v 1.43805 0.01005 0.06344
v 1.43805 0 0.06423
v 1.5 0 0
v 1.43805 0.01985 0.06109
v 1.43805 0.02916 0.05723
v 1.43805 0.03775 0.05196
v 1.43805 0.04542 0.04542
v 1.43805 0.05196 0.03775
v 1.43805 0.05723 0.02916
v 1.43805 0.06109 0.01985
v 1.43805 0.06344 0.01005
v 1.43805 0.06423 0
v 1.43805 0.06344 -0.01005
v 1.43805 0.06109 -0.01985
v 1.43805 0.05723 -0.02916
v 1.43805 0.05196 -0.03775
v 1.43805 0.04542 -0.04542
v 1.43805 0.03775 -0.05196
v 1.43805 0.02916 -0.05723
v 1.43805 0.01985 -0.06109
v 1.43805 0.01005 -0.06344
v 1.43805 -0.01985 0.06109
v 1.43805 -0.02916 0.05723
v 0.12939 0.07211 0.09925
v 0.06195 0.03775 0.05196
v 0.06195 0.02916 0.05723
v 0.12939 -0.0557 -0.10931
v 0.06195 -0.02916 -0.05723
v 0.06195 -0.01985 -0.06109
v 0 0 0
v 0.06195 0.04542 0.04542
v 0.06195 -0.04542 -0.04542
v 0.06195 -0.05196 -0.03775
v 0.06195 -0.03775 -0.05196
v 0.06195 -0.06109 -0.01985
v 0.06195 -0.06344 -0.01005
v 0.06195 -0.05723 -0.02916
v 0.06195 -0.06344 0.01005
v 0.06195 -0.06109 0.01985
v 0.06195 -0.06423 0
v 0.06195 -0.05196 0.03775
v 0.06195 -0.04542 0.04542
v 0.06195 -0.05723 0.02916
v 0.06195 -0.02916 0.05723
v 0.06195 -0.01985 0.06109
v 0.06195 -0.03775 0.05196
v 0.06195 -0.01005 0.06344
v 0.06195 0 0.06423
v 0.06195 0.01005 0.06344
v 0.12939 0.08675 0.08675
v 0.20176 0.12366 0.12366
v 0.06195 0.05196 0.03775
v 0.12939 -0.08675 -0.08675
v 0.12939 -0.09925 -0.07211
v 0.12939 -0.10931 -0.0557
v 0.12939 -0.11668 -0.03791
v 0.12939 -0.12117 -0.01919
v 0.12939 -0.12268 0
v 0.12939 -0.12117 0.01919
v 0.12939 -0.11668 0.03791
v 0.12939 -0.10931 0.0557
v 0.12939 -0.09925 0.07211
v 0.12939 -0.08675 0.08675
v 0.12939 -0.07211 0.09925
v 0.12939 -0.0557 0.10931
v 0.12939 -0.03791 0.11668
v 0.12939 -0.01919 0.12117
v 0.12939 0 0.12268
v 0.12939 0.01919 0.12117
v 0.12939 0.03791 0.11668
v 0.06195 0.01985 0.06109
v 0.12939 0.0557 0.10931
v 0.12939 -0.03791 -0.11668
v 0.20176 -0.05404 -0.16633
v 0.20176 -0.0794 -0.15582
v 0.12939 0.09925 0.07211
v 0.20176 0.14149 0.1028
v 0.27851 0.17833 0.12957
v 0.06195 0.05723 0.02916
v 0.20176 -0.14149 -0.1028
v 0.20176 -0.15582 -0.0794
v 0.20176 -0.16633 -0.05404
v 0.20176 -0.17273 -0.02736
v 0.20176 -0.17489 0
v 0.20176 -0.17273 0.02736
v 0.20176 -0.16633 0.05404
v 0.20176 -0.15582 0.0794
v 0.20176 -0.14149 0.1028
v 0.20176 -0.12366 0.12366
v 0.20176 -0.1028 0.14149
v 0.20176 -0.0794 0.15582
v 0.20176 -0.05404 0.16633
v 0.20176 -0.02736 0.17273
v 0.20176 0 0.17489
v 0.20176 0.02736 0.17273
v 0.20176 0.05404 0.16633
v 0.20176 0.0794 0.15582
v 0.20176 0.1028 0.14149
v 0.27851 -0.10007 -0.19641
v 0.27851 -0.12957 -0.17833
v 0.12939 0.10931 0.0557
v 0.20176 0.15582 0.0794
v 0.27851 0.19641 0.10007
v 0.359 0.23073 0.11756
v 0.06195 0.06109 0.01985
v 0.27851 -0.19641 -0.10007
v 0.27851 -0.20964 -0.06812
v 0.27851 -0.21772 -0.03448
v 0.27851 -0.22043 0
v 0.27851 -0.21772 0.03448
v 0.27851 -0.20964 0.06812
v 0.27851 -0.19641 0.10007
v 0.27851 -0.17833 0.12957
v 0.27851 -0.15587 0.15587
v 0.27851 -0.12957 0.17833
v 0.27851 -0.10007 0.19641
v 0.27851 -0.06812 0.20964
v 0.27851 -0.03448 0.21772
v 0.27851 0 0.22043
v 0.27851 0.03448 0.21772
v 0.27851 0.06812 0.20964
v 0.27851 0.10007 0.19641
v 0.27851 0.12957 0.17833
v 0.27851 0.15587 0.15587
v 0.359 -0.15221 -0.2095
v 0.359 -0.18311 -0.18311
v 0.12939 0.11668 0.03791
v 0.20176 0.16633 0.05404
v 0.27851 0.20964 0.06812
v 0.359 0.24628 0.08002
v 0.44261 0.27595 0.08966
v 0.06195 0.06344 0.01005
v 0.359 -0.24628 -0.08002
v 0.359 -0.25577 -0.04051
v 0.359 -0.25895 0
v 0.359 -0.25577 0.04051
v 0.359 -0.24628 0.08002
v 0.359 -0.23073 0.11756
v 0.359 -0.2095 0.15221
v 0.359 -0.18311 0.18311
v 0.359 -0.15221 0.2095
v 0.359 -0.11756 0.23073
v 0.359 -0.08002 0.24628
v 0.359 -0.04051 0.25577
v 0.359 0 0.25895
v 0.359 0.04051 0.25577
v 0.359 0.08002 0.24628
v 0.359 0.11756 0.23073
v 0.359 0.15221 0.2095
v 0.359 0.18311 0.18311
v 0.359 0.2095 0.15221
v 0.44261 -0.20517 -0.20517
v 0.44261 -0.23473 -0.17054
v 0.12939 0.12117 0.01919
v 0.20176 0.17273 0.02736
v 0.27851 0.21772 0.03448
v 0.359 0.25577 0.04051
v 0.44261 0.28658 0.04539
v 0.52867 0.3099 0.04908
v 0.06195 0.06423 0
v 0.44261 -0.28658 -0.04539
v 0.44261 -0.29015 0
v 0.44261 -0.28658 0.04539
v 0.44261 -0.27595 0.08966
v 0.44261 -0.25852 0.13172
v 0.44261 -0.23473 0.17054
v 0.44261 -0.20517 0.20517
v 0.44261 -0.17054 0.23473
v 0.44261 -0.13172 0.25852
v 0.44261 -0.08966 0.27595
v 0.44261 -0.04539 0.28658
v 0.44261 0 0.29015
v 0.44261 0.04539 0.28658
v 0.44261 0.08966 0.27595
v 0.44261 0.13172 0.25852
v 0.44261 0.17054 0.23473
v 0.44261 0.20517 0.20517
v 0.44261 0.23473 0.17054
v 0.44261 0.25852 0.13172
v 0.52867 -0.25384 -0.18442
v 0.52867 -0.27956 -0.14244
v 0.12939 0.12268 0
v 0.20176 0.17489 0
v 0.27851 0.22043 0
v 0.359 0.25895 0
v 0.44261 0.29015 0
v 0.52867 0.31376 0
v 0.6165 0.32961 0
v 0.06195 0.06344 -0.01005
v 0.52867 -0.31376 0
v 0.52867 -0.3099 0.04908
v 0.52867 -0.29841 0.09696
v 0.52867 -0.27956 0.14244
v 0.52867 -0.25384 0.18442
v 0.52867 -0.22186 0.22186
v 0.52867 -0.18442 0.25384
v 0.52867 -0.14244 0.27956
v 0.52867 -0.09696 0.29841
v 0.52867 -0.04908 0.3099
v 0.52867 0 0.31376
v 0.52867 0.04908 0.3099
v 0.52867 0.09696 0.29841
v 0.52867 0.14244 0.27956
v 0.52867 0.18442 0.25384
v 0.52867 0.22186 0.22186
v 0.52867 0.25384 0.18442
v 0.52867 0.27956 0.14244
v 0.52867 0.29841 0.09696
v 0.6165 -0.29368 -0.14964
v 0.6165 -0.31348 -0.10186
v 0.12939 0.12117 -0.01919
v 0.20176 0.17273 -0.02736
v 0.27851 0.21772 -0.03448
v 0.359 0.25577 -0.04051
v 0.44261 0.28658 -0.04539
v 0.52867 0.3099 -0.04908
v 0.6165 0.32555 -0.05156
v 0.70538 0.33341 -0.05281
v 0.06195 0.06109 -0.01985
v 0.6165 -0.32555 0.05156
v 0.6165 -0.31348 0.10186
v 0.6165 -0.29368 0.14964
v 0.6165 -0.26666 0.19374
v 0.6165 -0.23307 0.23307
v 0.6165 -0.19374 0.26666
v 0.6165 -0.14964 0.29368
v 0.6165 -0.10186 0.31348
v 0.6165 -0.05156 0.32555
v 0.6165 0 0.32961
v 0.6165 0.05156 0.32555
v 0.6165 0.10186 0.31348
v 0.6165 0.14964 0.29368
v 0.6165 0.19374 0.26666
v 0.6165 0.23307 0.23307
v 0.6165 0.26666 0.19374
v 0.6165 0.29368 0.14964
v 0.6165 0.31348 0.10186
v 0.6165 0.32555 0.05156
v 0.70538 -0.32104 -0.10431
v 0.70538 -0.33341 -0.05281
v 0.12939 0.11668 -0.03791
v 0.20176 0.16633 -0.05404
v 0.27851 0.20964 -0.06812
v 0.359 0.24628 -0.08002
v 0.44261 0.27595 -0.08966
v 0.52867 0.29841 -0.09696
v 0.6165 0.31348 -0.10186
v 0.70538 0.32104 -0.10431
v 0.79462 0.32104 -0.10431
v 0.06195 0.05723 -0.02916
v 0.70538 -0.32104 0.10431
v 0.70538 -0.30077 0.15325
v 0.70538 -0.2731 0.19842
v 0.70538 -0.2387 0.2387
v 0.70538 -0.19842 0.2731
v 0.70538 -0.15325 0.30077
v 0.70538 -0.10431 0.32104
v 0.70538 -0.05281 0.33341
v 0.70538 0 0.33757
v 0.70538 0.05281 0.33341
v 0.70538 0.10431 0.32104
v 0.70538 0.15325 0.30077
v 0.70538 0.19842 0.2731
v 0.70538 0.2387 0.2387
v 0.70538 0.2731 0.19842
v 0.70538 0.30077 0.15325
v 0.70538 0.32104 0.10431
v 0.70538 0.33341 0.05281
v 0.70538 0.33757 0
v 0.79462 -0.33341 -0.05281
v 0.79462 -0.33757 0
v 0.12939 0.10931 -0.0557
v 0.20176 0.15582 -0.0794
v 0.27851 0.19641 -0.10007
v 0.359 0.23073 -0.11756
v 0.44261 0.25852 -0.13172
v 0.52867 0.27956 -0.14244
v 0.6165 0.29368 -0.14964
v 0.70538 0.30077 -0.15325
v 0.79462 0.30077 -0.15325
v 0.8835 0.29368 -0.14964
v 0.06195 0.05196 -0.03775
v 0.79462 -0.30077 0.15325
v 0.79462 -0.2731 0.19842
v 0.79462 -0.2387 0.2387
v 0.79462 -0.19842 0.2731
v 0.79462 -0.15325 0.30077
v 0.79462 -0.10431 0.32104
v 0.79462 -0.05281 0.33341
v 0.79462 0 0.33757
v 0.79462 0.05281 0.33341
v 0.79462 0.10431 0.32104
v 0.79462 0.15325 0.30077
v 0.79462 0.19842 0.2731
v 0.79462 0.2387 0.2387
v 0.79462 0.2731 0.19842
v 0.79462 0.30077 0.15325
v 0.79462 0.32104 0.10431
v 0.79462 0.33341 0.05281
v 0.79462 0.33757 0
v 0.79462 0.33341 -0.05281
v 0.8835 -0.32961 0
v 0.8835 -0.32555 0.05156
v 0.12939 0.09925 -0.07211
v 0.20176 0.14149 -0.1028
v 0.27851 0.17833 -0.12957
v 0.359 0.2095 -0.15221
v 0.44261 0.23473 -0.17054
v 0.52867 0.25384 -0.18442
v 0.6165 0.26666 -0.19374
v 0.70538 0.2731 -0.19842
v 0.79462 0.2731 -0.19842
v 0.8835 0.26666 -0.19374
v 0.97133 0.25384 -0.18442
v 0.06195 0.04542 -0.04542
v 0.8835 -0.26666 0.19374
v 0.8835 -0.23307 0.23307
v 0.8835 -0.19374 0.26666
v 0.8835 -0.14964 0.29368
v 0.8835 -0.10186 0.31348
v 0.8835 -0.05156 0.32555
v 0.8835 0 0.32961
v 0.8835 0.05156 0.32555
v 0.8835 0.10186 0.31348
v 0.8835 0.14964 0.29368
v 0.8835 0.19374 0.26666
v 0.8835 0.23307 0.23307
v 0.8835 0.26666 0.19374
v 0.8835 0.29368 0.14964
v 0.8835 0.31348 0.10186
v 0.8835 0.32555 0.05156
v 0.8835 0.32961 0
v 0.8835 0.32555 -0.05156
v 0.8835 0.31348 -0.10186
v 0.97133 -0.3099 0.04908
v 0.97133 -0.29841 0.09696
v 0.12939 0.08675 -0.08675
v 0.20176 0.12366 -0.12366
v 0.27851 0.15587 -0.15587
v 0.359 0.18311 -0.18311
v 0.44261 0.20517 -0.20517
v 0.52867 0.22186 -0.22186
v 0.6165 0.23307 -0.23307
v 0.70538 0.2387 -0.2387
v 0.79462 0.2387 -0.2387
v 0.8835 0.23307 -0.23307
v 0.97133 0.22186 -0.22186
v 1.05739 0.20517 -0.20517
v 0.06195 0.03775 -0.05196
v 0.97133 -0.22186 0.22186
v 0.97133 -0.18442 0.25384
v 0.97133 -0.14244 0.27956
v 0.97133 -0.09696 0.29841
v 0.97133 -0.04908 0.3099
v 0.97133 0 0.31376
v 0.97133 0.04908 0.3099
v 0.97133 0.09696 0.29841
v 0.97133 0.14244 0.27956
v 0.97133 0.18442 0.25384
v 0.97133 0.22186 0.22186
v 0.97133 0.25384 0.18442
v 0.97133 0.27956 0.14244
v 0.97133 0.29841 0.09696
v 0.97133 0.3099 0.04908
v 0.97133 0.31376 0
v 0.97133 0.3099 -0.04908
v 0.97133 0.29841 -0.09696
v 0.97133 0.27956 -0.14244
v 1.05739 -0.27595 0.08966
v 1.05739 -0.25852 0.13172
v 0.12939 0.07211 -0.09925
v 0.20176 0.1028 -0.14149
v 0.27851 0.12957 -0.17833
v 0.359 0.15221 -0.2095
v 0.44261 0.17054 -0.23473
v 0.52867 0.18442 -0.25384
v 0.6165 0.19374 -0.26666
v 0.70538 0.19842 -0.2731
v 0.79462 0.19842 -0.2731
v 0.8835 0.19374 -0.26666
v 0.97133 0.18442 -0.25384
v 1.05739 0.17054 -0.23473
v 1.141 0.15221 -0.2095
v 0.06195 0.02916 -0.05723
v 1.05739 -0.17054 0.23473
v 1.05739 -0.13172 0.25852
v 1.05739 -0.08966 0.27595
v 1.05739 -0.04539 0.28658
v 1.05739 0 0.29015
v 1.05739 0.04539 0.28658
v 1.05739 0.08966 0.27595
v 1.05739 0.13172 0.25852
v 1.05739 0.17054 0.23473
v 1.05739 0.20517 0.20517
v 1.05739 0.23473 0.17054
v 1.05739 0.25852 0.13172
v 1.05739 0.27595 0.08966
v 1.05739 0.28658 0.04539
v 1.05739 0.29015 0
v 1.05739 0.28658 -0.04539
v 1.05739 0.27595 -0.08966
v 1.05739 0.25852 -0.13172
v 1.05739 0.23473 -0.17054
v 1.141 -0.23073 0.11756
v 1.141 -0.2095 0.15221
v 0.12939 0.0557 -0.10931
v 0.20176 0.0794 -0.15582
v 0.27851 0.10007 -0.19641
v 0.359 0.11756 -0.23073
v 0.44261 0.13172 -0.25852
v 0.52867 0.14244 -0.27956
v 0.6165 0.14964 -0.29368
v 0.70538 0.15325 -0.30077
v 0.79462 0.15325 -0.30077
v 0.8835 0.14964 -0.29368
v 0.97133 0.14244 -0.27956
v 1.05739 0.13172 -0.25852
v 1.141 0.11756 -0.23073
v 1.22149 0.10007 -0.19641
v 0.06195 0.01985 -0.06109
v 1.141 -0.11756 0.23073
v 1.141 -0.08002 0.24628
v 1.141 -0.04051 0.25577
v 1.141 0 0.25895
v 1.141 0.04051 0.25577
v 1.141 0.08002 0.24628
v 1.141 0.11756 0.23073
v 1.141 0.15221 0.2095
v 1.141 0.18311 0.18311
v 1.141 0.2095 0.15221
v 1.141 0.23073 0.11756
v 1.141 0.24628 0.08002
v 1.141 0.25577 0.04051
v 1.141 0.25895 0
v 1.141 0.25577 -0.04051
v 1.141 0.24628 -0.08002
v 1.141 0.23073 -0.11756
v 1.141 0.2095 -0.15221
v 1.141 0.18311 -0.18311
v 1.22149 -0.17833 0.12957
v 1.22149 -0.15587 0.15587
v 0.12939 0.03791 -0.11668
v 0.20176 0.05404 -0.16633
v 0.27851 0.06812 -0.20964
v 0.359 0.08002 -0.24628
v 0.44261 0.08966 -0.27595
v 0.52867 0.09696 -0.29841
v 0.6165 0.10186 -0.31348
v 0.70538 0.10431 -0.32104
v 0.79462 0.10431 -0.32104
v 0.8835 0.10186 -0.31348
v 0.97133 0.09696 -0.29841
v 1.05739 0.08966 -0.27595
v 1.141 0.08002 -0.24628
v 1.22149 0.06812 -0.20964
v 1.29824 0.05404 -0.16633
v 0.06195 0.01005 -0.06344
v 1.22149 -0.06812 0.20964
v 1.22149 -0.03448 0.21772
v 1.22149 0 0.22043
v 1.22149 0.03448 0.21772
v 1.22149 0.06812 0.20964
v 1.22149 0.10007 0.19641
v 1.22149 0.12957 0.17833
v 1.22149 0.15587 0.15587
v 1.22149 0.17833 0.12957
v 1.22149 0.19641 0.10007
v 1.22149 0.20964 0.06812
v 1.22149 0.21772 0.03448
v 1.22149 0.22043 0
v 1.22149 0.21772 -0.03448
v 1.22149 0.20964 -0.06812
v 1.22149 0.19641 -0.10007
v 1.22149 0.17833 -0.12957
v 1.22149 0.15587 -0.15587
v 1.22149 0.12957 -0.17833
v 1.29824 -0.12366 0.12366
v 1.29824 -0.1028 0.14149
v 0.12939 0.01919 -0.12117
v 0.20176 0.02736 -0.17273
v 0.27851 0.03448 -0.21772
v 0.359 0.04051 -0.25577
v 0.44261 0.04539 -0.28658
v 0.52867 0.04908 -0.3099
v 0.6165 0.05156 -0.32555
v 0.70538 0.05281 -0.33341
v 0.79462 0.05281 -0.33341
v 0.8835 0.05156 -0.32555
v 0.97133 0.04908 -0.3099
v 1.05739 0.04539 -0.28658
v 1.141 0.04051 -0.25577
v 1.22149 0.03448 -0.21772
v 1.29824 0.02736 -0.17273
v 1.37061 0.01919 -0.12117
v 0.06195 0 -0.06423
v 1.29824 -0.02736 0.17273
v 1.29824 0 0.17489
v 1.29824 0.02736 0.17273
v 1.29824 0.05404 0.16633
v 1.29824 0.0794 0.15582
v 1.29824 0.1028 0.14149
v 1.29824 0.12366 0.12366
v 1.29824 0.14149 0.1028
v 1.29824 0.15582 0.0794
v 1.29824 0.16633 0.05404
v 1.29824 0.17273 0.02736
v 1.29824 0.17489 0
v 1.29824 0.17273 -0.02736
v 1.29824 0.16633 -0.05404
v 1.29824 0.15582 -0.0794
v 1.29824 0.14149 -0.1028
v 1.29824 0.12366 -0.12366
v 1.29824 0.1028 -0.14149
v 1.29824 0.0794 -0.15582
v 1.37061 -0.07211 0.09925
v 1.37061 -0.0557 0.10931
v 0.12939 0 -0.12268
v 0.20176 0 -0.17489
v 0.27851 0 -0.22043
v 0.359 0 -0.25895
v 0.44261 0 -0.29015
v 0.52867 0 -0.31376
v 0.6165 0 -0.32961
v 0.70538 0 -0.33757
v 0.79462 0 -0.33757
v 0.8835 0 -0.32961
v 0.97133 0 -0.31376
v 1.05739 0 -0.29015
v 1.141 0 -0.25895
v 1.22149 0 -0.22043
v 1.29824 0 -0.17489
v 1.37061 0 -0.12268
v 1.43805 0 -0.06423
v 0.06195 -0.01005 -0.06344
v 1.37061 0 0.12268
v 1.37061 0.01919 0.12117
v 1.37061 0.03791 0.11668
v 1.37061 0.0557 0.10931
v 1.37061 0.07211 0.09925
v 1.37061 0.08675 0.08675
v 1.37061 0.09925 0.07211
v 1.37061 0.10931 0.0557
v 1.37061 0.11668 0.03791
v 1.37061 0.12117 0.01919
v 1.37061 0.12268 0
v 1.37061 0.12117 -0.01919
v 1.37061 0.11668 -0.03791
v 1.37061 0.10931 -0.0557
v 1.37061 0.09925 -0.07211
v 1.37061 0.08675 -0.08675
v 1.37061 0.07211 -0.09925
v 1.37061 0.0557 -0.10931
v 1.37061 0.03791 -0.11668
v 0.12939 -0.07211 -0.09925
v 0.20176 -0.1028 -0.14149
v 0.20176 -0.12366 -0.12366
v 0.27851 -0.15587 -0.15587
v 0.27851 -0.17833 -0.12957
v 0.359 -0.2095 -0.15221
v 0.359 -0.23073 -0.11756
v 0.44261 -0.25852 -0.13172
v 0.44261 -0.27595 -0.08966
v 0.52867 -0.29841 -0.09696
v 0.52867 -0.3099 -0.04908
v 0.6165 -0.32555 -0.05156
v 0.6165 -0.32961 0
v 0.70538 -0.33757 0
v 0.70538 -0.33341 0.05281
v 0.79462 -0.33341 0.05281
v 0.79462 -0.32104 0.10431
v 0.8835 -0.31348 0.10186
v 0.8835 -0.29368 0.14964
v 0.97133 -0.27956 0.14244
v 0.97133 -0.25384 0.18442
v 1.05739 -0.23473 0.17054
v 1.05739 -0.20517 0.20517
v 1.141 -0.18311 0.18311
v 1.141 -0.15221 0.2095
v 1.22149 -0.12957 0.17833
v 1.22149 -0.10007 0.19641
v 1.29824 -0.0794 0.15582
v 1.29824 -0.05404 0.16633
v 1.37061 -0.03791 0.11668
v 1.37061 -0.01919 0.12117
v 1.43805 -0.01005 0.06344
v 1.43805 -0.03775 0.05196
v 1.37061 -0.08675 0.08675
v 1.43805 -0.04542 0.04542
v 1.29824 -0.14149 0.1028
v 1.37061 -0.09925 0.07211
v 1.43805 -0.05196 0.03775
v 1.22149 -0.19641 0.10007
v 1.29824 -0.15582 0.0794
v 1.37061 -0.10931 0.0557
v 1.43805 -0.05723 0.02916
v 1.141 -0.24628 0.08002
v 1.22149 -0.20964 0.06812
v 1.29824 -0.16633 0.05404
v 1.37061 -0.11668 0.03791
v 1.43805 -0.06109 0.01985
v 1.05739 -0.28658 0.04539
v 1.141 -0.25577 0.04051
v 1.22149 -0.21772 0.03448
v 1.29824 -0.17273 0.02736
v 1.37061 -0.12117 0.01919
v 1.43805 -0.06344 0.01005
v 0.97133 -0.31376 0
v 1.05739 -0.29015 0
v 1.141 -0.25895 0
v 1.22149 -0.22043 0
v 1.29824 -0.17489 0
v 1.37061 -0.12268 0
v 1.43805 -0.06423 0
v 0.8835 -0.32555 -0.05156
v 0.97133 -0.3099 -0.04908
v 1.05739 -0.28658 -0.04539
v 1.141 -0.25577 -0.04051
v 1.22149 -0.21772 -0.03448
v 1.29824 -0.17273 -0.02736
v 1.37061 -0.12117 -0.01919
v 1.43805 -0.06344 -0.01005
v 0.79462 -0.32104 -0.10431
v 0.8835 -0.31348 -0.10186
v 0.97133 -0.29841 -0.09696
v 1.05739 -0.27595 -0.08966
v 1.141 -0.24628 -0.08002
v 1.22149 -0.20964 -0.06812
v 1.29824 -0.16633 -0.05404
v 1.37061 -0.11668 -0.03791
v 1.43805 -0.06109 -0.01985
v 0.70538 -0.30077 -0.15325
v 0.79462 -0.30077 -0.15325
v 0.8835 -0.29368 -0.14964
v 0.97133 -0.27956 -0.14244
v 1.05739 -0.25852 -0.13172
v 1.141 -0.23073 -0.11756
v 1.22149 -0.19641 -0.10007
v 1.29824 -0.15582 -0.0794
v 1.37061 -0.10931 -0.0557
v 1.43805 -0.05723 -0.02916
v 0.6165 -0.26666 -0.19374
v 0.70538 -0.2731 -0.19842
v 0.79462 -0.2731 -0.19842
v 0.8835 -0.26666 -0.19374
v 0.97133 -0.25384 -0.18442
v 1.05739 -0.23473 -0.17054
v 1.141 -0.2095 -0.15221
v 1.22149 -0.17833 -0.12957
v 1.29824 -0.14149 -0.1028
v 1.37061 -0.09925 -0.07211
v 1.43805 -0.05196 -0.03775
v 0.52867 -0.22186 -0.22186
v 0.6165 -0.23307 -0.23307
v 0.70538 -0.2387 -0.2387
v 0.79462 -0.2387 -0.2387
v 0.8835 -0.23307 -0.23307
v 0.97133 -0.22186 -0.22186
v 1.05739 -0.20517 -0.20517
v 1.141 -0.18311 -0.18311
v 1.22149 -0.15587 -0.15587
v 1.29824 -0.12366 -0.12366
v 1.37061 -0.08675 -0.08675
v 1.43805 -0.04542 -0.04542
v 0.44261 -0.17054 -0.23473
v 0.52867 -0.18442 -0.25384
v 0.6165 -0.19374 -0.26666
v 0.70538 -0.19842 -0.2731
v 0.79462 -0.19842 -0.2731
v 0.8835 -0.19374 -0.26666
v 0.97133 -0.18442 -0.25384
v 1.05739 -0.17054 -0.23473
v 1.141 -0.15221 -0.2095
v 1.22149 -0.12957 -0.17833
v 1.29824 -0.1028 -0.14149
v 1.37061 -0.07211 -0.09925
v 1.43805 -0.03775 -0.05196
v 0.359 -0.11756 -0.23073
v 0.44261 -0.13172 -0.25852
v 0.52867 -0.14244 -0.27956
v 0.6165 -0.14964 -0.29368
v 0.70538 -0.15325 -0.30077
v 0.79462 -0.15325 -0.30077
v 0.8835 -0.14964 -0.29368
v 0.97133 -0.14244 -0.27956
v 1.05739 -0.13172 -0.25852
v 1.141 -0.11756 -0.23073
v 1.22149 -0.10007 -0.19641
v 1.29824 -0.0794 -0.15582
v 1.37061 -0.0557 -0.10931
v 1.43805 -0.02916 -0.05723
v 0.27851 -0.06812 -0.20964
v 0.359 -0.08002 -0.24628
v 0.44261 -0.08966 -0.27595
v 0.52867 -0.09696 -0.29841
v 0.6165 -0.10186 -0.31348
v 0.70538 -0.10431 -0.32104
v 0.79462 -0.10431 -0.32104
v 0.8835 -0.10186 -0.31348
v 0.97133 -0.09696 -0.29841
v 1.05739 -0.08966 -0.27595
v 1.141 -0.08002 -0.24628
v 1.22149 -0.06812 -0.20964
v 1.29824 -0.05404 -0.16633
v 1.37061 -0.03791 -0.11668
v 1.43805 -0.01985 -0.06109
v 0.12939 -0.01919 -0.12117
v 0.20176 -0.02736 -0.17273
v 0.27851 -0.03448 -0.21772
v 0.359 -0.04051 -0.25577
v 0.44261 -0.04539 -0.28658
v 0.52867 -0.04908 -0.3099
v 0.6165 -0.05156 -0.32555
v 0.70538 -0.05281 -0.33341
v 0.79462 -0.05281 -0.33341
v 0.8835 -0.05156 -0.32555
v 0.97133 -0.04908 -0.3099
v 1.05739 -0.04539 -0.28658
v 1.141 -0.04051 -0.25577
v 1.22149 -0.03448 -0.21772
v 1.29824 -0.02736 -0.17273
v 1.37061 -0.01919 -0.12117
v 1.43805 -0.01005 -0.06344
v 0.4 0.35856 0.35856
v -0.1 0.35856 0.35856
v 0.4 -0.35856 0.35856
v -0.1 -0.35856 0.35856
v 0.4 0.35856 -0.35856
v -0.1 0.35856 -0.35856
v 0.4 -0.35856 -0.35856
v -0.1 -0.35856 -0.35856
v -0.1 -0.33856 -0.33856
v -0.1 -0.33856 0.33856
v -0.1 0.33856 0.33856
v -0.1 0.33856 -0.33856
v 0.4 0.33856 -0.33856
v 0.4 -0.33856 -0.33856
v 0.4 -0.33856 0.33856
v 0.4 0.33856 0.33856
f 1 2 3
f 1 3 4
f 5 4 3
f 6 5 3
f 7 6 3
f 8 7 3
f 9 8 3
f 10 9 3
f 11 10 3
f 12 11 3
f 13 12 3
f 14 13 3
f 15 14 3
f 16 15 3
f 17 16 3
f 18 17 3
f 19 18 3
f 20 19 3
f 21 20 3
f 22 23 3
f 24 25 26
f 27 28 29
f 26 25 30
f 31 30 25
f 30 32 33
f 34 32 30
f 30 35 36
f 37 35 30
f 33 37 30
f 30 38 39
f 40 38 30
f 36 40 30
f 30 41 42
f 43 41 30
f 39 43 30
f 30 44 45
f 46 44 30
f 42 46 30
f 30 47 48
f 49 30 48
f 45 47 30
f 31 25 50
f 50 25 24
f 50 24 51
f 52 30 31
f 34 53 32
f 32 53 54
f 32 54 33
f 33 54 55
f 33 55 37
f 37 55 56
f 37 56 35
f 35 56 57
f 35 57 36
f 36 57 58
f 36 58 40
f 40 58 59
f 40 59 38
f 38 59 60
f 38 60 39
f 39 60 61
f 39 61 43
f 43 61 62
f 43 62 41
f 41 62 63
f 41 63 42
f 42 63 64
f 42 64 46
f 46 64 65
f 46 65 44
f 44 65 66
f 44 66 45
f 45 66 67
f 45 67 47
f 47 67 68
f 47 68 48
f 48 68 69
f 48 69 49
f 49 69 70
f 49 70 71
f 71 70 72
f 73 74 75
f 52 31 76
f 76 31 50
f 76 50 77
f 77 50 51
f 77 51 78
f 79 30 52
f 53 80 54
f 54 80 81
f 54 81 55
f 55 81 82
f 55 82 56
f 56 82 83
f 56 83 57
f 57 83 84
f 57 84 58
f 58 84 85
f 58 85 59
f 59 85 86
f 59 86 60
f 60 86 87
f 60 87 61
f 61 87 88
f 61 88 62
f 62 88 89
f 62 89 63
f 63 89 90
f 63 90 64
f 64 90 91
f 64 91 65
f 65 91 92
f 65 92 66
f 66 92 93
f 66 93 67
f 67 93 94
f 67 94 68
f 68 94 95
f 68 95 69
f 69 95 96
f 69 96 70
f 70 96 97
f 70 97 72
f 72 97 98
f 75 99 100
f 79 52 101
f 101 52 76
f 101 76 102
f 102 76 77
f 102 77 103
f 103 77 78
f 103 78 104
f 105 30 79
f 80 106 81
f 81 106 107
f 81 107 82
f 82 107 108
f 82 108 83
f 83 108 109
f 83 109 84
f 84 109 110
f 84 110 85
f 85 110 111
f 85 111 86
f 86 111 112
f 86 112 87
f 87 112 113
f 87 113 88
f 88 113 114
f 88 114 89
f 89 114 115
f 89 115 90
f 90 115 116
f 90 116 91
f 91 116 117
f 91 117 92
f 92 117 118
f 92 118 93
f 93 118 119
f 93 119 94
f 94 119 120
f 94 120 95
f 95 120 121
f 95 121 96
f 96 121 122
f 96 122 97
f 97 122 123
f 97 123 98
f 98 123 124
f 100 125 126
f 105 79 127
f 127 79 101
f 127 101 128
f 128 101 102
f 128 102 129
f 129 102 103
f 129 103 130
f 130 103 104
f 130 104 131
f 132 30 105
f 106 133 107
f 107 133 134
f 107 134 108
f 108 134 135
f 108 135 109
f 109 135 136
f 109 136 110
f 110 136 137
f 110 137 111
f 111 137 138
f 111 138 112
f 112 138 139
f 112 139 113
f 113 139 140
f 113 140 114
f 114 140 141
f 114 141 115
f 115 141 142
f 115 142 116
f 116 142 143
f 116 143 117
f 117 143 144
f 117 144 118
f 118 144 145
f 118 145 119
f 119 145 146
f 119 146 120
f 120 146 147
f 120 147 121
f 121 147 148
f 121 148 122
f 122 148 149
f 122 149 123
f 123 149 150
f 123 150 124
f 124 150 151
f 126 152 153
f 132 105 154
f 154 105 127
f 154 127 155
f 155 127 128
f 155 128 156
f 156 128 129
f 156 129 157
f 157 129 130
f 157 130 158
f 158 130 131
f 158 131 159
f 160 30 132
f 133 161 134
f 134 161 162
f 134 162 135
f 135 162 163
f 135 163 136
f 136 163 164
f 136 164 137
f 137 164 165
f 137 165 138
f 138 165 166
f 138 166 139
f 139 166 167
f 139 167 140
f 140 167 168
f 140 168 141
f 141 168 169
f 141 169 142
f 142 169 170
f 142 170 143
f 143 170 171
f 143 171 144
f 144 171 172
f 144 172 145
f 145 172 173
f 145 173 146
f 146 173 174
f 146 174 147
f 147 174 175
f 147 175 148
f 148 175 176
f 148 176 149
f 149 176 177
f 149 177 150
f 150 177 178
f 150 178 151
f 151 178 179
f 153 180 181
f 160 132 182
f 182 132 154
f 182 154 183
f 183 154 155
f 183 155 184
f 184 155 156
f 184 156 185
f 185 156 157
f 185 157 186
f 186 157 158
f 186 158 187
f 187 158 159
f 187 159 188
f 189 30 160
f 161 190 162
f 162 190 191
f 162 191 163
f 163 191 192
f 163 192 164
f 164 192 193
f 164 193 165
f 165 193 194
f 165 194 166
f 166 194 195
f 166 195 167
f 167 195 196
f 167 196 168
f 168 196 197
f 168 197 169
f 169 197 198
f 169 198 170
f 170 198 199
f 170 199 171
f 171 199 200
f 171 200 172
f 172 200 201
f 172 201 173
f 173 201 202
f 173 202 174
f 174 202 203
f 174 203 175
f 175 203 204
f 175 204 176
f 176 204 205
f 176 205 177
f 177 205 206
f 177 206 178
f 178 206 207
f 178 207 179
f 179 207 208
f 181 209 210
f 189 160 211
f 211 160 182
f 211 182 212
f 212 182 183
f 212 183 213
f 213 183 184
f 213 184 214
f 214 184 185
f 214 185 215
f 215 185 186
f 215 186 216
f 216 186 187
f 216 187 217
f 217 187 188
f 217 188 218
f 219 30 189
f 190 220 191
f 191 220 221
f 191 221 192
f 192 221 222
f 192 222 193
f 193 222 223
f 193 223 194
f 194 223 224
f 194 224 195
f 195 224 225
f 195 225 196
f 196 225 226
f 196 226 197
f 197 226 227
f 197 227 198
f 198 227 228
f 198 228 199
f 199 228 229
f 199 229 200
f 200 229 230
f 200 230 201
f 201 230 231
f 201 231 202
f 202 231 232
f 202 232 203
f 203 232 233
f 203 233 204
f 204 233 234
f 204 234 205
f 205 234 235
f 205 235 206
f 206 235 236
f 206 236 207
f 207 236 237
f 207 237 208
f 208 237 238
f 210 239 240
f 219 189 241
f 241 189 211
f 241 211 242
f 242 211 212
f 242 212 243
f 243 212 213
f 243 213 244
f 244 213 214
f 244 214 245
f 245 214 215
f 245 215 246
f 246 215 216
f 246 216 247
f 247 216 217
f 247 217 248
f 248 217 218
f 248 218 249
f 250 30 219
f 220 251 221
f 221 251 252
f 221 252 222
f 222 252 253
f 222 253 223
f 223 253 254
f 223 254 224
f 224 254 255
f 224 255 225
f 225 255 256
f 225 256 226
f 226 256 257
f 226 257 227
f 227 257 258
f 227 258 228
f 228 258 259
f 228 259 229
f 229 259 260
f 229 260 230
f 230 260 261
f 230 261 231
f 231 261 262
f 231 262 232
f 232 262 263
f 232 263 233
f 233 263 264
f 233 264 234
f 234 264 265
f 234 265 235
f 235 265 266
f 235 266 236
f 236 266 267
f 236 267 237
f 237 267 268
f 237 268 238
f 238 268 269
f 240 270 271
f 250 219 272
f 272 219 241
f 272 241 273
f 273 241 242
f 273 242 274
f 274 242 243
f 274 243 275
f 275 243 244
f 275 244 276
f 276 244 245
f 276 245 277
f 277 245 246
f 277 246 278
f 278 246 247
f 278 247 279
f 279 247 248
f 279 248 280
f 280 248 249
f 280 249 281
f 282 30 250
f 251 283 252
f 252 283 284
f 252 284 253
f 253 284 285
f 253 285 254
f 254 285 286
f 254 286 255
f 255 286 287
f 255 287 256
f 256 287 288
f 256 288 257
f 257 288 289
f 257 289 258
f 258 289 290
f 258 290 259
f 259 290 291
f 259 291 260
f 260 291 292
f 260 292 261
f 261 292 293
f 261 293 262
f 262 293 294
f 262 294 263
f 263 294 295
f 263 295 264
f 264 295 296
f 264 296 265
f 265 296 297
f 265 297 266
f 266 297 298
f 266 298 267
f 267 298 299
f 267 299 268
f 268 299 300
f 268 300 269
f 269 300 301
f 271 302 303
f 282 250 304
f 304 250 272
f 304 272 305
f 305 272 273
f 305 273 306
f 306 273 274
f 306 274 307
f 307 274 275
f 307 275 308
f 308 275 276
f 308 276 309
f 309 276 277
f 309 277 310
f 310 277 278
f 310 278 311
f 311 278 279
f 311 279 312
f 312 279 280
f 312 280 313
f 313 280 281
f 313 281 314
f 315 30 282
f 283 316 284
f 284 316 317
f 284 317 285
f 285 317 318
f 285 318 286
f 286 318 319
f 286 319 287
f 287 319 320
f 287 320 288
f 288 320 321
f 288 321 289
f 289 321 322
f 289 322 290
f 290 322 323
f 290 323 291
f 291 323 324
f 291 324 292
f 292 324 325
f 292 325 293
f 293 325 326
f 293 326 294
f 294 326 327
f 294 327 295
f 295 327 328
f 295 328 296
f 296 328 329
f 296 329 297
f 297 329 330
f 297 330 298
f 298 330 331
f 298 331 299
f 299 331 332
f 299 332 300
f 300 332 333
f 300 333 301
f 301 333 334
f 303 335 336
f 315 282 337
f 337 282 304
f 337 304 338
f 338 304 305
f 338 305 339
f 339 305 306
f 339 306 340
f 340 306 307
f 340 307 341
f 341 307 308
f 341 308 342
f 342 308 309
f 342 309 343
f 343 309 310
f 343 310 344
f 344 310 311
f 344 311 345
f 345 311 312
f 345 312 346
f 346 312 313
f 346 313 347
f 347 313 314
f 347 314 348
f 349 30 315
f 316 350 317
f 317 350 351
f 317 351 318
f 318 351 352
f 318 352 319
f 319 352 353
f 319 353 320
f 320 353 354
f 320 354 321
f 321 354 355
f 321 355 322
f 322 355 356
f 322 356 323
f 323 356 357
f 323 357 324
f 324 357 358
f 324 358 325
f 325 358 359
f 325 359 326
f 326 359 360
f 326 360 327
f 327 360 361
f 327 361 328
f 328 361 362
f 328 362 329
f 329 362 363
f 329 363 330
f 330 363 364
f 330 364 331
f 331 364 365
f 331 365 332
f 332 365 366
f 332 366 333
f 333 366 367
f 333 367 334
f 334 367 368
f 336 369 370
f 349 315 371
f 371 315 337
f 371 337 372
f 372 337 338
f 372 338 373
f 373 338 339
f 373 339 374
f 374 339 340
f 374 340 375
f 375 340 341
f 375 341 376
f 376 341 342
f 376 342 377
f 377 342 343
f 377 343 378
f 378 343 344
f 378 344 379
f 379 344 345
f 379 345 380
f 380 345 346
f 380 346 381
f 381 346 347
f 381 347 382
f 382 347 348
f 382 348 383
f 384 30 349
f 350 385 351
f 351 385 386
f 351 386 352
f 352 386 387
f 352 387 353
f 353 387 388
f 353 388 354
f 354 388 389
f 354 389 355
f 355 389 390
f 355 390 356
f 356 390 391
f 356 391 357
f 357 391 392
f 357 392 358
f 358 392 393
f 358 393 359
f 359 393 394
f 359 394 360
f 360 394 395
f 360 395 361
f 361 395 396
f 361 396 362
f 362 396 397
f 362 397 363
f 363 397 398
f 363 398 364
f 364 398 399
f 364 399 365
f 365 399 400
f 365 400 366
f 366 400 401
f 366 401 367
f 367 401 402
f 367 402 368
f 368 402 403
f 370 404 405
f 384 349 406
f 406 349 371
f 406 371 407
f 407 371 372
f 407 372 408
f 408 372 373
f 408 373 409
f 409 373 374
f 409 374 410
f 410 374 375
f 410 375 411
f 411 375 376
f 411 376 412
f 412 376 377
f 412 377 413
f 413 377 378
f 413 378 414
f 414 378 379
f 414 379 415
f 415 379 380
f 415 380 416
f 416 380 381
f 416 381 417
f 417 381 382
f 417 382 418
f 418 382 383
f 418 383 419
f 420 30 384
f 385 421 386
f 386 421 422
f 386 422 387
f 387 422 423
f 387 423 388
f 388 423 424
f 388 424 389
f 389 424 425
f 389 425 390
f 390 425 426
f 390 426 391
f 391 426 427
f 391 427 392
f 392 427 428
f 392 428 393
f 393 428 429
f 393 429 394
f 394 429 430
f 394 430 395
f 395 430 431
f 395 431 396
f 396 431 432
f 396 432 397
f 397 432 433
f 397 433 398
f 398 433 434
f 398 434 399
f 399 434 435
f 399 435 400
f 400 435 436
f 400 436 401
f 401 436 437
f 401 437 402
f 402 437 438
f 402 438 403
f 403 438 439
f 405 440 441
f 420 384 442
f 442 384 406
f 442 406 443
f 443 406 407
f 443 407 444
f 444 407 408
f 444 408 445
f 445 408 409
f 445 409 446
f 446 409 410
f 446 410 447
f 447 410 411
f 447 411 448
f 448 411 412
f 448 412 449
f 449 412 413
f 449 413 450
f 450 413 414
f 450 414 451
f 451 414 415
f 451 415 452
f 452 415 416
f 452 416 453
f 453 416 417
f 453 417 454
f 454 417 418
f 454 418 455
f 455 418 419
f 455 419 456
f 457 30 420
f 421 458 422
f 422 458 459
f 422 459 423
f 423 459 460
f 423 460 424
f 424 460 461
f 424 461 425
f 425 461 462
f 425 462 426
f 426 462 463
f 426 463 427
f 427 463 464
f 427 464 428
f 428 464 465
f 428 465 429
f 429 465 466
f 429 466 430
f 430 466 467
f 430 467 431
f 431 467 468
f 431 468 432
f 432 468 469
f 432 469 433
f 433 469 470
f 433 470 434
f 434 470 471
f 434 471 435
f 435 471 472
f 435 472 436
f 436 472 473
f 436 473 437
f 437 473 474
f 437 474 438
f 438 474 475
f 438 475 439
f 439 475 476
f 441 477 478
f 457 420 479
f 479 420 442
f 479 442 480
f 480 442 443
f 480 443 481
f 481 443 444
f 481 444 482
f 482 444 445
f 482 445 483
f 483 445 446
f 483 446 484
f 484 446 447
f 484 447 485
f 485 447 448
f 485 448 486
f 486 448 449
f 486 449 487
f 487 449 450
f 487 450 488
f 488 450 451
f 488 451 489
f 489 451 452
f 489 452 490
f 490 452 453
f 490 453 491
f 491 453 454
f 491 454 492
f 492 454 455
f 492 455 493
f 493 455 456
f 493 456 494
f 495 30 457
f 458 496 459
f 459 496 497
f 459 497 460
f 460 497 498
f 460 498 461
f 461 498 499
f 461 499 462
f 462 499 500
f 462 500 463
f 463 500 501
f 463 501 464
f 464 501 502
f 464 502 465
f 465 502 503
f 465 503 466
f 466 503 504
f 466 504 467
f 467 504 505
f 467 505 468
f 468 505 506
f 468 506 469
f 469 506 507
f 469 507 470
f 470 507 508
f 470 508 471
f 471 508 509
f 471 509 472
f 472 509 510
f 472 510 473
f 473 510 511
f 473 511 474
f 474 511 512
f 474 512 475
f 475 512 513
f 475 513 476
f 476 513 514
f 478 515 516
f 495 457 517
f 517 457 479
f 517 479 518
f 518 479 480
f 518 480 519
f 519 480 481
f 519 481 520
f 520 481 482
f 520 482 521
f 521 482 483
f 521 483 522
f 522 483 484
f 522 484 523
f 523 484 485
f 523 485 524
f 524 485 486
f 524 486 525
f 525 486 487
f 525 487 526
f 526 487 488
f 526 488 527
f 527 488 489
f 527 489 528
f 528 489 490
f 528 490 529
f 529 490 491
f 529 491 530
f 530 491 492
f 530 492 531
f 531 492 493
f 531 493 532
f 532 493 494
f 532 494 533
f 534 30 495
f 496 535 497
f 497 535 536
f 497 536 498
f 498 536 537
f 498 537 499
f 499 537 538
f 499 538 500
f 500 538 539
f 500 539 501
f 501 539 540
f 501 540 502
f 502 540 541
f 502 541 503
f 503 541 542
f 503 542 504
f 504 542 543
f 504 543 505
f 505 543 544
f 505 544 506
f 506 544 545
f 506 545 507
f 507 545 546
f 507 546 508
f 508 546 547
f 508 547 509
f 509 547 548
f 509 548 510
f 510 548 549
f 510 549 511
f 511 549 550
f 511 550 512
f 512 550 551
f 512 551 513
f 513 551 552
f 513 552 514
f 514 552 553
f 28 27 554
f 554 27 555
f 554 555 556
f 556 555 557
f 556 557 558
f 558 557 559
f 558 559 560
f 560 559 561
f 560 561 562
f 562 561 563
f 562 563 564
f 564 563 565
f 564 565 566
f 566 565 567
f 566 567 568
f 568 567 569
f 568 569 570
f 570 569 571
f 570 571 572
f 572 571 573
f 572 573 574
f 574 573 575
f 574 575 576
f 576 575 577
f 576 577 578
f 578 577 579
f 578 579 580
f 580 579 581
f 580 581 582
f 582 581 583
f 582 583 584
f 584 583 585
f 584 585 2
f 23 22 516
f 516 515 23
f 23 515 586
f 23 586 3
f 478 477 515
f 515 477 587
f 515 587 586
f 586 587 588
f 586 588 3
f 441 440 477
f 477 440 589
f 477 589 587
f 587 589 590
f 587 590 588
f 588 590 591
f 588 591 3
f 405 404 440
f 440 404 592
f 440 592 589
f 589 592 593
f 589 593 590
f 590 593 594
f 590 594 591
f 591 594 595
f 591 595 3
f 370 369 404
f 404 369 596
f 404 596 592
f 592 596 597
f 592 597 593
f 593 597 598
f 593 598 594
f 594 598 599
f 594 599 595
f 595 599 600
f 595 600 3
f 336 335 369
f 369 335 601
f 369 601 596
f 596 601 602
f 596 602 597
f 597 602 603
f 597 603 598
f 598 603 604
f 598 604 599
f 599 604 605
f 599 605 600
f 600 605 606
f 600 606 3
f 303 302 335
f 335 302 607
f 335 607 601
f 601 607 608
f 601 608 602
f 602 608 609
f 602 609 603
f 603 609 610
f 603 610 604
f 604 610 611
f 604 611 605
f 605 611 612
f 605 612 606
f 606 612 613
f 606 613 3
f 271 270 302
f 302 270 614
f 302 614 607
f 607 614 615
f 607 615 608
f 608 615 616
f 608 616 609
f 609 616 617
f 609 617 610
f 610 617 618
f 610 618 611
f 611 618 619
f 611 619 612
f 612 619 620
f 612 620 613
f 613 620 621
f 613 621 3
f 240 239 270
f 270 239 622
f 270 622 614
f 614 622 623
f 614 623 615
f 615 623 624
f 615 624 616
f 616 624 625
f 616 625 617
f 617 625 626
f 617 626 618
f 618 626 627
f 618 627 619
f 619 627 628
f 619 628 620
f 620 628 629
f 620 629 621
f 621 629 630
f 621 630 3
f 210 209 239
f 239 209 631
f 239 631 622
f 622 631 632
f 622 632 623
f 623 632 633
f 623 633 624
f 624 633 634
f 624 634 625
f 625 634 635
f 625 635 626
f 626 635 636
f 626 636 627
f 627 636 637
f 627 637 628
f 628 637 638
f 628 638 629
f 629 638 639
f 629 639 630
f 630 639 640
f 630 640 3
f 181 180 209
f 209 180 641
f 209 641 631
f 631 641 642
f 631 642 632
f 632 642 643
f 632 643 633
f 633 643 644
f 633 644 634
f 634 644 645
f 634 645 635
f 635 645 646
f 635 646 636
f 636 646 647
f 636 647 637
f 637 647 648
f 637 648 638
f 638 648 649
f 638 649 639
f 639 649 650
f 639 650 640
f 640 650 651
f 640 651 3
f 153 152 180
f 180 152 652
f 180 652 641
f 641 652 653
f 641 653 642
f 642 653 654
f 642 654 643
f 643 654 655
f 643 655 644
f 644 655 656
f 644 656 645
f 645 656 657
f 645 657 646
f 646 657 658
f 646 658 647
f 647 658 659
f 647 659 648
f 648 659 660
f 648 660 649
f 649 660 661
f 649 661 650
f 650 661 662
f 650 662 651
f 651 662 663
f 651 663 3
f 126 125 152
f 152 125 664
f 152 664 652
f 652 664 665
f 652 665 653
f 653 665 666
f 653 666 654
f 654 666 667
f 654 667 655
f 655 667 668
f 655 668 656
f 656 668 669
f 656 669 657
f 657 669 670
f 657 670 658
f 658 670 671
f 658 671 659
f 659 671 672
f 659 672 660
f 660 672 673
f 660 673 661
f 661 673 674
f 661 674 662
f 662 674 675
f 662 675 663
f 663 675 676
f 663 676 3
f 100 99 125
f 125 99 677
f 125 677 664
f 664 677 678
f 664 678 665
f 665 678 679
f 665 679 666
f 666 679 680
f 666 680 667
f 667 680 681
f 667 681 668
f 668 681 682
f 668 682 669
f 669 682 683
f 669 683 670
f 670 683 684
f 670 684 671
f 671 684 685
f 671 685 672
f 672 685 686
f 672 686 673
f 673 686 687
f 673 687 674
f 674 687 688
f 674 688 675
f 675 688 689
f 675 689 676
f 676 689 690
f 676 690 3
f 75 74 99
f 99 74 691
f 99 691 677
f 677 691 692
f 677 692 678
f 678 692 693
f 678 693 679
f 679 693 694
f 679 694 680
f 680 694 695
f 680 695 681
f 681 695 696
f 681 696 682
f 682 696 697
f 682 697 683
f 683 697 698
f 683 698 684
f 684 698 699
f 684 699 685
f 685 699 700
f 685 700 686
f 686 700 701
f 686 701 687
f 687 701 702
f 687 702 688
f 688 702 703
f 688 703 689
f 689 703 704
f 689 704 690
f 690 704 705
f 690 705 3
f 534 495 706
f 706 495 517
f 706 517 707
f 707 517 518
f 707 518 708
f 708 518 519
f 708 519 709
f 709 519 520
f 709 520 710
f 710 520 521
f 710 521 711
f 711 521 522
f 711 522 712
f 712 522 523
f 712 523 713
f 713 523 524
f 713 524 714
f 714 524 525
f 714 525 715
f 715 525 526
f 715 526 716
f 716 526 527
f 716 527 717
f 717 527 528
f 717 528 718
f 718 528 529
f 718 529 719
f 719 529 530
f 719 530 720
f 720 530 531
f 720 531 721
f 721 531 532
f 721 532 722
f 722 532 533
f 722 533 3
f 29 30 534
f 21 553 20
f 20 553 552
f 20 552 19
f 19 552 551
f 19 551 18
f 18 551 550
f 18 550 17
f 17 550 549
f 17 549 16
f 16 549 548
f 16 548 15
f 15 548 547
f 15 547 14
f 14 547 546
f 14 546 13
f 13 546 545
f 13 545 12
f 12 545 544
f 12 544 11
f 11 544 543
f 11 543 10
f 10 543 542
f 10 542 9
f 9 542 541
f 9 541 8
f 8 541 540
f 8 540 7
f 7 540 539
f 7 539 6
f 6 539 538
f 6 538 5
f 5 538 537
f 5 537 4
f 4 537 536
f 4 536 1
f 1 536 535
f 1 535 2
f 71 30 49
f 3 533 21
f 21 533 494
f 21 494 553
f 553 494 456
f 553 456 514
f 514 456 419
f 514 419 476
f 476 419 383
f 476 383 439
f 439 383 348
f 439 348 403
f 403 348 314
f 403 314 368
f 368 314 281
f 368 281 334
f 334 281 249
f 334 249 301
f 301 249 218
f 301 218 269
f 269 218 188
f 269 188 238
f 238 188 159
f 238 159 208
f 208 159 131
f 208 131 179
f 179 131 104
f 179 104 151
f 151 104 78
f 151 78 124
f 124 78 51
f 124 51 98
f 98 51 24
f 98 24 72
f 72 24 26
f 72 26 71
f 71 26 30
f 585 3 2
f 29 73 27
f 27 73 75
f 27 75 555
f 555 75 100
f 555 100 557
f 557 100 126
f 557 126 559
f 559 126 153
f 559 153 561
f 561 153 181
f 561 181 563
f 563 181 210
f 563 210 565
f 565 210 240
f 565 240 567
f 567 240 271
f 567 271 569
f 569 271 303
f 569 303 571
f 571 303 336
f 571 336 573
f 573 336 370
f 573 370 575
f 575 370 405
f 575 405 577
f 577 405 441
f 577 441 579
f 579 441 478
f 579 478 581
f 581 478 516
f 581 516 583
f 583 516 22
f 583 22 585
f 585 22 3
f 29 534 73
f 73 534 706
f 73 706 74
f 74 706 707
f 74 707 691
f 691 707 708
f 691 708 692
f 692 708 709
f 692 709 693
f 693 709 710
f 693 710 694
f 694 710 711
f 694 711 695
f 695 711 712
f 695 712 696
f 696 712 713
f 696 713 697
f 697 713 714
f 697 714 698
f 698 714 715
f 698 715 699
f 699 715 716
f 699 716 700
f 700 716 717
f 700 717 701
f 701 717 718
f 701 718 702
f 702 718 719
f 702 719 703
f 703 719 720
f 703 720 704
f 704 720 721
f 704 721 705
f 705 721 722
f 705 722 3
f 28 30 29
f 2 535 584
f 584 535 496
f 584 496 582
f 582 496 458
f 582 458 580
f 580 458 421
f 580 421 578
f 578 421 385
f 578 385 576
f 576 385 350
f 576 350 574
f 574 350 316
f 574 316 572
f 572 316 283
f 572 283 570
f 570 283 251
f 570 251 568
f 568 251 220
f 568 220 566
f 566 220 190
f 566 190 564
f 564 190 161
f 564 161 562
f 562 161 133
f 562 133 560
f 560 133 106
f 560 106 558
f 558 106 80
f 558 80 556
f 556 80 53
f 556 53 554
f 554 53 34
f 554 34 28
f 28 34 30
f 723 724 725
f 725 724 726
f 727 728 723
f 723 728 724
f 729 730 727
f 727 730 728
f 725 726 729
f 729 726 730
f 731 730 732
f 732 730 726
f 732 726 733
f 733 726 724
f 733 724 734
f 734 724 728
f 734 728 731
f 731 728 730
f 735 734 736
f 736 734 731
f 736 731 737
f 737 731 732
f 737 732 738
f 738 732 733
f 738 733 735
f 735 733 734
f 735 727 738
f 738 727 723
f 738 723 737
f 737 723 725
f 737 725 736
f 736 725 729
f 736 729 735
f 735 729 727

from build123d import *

# Parameters (mm, degrees)
BOSS_EXTRUDE1_DEPTH      = 0.4
BOSS_EXTRUDE1_DEPTH_BACK = 0.1
SKETCH2_W                = 0.717124344
SKETCH2_H                = 0.717124344
SKETCH2_W_2              = 0.677124344
SKETCH2_H_2              = 0.677124344


with BuildPart() as part:
    # Sketch1 → Revolve1 (revolve)
    with BuildSketch(Plane.XY):
        with BuildLine():
            Line((1.5, 0), (0, 0))
            ThreePointArc((0, 0), (0.75, 0.338562172), (1.5, 0))
        make_face()
    revolve(axis=Axis((0, 0, 0), (1, 0, 0)))


with BuildPart() as body_2:
    # Sketch2 → Boss-Extrude1 (new, two sides: drawn at the far end of the back side and taken through both)
    with BuildSketch(Plane(origin=(0, 0, 0), x_dir=(0, 0, -1), z_dir=(1, 0, 0)).offset(-BOSS_EXTRUDE1_DEPTH_BACK)):
        Rectangle(SKETCH2_W, SKETCH2_H)
        Rectangle(SKETCH2_W_2, SKETCH2_H_2, mode=Mode.SUBTRACT)
    extrude(amount=BOSS_EXTRUDE1_DEPTH + BOSS_EXTRUDE1_DEPTH_BACK)


solid = Compound([part.part, body_2.part])
